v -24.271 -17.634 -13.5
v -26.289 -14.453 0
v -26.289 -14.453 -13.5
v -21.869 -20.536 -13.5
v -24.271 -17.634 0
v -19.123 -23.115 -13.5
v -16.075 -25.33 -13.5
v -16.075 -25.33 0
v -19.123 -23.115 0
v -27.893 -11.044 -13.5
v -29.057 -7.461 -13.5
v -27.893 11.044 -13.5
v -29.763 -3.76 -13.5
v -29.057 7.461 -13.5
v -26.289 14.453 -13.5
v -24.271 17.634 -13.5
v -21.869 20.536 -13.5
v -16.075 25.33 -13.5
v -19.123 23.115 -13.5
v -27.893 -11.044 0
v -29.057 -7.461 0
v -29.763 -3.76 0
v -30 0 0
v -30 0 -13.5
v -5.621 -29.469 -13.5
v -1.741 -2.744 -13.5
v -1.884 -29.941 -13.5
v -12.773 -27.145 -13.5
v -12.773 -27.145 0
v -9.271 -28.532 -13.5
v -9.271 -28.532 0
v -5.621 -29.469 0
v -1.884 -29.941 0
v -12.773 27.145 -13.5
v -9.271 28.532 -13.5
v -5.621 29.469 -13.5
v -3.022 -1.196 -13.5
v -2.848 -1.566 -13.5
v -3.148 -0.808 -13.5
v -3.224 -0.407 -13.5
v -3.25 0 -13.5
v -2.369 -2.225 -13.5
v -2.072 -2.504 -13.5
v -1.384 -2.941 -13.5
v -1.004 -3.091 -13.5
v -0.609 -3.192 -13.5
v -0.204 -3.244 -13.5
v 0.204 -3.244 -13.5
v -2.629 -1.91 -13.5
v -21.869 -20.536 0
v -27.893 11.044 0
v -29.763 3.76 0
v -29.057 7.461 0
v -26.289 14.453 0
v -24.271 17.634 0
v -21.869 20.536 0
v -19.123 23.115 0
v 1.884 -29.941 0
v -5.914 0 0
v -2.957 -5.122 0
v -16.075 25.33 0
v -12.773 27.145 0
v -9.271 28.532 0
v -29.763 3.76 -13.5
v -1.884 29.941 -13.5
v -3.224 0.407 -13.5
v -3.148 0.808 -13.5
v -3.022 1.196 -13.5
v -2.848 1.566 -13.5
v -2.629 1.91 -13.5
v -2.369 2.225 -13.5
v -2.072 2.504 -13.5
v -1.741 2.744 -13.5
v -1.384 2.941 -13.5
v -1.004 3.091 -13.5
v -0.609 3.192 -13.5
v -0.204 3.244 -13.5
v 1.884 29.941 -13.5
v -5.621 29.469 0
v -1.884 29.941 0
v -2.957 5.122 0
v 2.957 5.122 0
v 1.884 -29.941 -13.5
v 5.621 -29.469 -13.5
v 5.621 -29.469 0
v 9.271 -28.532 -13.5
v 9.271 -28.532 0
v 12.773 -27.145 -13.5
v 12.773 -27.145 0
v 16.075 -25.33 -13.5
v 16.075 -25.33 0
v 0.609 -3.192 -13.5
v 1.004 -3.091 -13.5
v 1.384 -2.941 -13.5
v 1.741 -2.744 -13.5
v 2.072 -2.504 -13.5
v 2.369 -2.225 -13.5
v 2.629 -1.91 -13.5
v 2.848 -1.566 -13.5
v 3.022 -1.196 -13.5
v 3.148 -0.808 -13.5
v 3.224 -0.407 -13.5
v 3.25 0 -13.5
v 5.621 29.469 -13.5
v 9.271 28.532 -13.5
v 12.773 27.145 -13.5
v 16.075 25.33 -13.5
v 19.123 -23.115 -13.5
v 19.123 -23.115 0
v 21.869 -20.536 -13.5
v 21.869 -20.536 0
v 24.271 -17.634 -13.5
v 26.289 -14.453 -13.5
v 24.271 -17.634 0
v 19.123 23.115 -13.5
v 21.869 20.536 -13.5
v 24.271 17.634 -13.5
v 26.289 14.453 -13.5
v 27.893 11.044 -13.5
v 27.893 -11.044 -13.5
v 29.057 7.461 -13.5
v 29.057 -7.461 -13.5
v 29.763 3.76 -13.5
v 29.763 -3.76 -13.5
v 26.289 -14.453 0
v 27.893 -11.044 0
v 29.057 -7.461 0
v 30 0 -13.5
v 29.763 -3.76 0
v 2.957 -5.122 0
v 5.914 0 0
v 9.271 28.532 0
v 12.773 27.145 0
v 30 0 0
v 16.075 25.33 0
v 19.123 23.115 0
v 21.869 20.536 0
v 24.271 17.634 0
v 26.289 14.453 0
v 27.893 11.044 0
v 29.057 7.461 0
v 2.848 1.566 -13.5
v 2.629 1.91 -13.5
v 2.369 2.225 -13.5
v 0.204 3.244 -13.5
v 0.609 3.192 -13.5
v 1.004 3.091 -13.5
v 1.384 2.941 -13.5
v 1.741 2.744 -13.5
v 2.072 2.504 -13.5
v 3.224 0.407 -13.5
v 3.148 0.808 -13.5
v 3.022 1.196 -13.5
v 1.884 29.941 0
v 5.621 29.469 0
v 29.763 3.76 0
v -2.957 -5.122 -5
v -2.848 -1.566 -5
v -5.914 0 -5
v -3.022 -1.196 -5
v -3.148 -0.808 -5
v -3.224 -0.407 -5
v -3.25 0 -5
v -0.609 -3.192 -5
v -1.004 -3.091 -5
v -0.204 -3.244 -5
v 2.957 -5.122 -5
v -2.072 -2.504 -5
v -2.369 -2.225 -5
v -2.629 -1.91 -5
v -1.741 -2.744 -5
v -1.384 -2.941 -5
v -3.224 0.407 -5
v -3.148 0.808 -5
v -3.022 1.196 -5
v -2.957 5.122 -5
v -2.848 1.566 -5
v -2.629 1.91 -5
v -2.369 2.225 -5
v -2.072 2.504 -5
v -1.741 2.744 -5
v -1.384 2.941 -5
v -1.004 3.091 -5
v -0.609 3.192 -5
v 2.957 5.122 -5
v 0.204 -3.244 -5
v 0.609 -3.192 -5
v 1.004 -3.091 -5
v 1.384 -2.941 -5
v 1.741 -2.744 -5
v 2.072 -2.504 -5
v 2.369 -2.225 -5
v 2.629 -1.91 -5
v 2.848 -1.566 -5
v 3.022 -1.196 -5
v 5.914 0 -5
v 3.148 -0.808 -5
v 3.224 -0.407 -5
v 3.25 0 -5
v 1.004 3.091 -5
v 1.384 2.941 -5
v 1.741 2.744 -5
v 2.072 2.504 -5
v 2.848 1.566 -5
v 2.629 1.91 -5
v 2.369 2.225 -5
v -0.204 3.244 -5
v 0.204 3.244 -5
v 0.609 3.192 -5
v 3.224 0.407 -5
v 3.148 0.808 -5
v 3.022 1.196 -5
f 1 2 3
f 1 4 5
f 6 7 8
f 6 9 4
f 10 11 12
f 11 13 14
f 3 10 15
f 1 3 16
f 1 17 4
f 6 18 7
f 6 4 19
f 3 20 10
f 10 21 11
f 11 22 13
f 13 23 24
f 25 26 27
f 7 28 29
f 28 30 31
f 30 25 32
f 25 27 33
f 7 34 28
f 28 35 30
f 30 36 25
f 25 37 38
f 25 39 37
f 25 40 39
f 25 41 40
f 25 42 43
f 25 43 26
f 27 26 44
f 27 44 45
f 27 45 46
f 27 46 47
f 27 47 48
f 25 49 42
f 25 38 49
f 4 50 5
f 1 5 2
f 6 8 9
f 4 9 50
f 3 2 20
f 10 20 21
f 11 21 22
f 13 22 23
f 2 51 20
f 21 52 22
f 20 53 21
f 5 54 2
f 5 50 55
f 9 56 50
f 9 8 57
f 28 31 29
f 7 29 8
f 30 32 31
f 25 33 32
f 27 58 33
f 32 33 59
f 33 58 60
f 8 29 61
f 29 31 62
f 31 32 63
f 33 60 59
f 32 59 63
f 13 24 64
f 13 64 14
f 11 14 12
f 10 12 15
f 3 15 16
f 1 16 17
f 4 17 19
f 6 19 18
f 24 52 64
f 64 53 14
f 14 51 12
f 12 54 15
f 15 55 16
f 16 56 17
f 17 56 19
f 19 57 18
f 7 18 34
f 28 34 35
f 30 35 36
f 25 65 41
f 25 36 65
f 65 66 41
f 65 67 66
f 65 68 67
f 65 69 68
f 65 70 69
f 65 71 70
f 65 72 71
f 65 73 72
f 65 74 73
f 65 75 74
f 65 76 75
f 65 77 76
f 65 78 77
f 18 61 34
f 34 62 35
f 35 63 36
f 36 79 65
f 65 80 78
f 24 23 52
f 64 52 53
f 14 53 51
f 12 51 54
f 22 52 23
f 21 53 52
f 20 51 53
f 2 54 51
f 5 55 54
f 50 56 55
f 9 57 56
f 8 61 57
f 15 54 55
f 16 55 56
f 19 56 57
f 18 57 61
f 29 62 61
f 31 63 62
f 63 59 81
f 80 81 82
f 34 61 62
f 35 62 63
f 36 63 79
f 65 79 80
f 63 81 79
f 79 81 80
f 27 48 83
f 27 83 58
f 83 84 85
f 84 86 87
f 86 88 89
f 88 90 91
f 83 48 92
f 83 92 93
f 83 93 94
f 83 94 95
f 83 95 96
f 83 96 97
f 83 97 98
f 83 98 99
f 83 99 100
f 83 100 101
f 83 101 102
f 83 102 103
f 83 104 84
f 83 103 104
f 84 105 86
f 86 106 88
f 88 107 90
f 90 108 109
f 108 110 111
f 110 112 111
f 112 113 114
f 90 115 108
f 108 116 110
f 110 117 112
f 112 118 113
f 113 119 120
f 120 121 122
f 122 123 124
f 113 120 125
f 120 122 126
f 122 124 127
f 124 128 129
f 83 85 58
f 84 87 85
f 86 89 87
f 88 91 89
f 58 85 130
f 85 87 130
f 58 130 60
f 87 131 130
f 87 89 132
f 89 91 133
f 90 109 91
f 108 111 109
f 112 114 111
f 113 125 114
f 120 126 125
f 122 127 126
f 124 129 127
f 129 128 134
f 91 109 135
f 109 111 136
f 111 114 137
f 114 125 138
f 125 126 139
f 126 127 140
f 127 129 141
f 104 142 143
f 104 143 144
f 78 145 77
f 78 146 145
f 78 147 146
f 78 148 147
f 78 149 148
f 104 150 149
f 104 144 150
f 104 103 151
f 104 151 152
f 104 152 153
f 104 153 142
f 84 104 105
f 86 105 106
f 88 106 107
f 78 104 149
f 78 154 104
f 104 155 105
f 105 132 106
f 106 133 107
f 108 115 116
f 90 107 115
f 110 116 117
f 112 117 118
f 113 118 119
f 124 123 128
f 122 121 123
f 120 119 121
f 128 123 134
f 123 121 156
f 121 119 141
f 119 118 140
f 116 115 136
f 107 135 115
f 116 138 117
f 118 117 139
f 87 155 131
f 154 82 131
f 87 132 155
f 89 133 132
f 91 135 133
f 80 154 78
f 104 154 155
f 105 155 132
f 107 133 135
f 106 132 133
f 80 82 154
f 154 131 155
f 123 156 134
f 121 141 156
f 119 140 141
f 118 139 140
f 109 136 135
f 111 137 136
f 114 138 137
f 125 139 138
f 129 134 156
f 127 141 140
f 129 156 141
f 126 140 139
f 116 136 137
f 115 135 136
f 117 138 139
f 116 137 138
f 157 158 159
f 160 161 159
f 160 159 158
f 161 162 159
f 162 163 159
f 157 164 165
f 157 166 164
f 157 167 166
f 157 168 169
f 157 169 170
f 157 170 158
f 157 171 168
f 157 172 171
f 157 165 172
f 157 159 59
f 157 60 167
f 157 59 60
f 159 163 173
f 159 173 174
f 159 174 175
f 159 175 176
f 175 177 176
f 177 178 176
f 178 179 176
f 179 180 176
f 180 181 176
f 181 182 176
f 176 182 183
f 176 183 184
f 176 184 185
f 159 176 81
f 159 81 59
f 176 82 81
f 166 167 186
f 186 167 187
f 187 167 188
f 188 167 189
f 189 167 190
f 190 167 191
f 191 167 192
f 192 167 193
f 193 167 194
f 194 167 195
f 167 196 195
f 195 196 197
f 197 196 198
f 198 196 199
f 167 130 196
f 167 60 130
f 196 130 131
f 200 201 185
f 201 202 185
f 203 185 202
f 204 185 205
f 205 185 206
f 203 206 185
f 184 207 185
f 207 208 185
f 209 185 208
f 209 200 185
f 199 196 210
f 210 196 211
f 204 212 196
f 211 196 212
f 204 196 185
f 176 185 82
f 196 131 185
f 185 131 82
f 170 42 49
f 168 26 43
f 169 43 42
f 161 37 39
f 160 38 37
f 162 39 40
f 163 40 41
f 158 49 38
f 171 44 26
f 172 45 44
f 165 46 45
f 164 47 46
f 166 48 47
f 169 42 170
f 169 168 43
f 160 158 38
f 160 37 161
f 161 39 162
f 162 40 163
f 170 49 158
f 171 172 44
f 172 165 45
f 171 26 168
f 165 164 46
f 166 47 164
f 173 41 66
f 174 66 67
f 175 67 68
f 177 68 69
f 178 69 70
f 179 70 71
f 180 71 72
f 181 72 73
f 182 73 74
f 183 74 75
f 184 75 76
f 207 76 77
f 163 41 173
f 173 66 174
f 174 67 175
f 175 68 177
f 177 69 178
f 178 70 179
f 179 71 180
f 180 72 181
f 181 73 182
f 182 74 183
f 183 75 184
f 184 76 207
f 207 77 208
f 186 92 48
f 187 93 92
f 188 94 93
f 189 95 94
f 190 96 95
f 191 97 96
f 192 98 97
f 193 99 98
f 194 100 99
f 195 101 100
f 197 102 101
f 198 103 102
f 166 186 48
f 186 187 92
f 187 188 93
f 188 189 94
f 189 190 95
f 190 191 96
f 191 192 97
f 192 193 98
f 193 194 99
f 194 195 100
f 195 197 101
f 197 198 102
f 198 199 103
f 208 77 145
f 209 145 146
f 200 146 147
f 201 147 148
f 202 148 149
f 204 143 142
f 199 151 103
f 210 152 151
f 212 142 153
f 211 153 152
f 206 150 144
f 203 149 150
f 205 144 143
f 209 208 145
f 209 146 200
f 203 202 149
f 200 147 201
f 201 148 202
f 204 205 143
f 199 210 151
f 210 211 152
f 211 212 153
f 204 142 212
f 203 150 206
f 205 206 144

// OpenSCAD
$fn = 50;

difference() {
	union() {
		translate(v = [0, 0, -13.5]) {
			cylinder(h = 13.5, r = 30.0);
		}
		#translate(v = [0, 0, -15.0]) {
			cylinder(h = 15, r = 2.875);
		}
	}
	union() {
		translate(v = [0, 0, 0]) {
			rotate(a = [0, 0, 0]) {
				difference() {
					union() {
						translate(v = [0, 0, -5]) {
							linear_extrude(height = 5) {
								polygon(points = [[5.914249999999999, 0.0], [2.957125, 5.1218907443321156], [-2.9571249999999982, 5.1218907443321156], [-5.914249999999999, 7.242867331857232e-16], [-2.9571250000000022, -5.121890744332115], [2.9571249999999956, -5.121890744332118]]);
							}
						}
					}
					union();
				}
			}
		}
		#translate(v = [0, 0, -100.0]) {
			cylinder(h = 200, r = 3.25);
		}
	}
}
